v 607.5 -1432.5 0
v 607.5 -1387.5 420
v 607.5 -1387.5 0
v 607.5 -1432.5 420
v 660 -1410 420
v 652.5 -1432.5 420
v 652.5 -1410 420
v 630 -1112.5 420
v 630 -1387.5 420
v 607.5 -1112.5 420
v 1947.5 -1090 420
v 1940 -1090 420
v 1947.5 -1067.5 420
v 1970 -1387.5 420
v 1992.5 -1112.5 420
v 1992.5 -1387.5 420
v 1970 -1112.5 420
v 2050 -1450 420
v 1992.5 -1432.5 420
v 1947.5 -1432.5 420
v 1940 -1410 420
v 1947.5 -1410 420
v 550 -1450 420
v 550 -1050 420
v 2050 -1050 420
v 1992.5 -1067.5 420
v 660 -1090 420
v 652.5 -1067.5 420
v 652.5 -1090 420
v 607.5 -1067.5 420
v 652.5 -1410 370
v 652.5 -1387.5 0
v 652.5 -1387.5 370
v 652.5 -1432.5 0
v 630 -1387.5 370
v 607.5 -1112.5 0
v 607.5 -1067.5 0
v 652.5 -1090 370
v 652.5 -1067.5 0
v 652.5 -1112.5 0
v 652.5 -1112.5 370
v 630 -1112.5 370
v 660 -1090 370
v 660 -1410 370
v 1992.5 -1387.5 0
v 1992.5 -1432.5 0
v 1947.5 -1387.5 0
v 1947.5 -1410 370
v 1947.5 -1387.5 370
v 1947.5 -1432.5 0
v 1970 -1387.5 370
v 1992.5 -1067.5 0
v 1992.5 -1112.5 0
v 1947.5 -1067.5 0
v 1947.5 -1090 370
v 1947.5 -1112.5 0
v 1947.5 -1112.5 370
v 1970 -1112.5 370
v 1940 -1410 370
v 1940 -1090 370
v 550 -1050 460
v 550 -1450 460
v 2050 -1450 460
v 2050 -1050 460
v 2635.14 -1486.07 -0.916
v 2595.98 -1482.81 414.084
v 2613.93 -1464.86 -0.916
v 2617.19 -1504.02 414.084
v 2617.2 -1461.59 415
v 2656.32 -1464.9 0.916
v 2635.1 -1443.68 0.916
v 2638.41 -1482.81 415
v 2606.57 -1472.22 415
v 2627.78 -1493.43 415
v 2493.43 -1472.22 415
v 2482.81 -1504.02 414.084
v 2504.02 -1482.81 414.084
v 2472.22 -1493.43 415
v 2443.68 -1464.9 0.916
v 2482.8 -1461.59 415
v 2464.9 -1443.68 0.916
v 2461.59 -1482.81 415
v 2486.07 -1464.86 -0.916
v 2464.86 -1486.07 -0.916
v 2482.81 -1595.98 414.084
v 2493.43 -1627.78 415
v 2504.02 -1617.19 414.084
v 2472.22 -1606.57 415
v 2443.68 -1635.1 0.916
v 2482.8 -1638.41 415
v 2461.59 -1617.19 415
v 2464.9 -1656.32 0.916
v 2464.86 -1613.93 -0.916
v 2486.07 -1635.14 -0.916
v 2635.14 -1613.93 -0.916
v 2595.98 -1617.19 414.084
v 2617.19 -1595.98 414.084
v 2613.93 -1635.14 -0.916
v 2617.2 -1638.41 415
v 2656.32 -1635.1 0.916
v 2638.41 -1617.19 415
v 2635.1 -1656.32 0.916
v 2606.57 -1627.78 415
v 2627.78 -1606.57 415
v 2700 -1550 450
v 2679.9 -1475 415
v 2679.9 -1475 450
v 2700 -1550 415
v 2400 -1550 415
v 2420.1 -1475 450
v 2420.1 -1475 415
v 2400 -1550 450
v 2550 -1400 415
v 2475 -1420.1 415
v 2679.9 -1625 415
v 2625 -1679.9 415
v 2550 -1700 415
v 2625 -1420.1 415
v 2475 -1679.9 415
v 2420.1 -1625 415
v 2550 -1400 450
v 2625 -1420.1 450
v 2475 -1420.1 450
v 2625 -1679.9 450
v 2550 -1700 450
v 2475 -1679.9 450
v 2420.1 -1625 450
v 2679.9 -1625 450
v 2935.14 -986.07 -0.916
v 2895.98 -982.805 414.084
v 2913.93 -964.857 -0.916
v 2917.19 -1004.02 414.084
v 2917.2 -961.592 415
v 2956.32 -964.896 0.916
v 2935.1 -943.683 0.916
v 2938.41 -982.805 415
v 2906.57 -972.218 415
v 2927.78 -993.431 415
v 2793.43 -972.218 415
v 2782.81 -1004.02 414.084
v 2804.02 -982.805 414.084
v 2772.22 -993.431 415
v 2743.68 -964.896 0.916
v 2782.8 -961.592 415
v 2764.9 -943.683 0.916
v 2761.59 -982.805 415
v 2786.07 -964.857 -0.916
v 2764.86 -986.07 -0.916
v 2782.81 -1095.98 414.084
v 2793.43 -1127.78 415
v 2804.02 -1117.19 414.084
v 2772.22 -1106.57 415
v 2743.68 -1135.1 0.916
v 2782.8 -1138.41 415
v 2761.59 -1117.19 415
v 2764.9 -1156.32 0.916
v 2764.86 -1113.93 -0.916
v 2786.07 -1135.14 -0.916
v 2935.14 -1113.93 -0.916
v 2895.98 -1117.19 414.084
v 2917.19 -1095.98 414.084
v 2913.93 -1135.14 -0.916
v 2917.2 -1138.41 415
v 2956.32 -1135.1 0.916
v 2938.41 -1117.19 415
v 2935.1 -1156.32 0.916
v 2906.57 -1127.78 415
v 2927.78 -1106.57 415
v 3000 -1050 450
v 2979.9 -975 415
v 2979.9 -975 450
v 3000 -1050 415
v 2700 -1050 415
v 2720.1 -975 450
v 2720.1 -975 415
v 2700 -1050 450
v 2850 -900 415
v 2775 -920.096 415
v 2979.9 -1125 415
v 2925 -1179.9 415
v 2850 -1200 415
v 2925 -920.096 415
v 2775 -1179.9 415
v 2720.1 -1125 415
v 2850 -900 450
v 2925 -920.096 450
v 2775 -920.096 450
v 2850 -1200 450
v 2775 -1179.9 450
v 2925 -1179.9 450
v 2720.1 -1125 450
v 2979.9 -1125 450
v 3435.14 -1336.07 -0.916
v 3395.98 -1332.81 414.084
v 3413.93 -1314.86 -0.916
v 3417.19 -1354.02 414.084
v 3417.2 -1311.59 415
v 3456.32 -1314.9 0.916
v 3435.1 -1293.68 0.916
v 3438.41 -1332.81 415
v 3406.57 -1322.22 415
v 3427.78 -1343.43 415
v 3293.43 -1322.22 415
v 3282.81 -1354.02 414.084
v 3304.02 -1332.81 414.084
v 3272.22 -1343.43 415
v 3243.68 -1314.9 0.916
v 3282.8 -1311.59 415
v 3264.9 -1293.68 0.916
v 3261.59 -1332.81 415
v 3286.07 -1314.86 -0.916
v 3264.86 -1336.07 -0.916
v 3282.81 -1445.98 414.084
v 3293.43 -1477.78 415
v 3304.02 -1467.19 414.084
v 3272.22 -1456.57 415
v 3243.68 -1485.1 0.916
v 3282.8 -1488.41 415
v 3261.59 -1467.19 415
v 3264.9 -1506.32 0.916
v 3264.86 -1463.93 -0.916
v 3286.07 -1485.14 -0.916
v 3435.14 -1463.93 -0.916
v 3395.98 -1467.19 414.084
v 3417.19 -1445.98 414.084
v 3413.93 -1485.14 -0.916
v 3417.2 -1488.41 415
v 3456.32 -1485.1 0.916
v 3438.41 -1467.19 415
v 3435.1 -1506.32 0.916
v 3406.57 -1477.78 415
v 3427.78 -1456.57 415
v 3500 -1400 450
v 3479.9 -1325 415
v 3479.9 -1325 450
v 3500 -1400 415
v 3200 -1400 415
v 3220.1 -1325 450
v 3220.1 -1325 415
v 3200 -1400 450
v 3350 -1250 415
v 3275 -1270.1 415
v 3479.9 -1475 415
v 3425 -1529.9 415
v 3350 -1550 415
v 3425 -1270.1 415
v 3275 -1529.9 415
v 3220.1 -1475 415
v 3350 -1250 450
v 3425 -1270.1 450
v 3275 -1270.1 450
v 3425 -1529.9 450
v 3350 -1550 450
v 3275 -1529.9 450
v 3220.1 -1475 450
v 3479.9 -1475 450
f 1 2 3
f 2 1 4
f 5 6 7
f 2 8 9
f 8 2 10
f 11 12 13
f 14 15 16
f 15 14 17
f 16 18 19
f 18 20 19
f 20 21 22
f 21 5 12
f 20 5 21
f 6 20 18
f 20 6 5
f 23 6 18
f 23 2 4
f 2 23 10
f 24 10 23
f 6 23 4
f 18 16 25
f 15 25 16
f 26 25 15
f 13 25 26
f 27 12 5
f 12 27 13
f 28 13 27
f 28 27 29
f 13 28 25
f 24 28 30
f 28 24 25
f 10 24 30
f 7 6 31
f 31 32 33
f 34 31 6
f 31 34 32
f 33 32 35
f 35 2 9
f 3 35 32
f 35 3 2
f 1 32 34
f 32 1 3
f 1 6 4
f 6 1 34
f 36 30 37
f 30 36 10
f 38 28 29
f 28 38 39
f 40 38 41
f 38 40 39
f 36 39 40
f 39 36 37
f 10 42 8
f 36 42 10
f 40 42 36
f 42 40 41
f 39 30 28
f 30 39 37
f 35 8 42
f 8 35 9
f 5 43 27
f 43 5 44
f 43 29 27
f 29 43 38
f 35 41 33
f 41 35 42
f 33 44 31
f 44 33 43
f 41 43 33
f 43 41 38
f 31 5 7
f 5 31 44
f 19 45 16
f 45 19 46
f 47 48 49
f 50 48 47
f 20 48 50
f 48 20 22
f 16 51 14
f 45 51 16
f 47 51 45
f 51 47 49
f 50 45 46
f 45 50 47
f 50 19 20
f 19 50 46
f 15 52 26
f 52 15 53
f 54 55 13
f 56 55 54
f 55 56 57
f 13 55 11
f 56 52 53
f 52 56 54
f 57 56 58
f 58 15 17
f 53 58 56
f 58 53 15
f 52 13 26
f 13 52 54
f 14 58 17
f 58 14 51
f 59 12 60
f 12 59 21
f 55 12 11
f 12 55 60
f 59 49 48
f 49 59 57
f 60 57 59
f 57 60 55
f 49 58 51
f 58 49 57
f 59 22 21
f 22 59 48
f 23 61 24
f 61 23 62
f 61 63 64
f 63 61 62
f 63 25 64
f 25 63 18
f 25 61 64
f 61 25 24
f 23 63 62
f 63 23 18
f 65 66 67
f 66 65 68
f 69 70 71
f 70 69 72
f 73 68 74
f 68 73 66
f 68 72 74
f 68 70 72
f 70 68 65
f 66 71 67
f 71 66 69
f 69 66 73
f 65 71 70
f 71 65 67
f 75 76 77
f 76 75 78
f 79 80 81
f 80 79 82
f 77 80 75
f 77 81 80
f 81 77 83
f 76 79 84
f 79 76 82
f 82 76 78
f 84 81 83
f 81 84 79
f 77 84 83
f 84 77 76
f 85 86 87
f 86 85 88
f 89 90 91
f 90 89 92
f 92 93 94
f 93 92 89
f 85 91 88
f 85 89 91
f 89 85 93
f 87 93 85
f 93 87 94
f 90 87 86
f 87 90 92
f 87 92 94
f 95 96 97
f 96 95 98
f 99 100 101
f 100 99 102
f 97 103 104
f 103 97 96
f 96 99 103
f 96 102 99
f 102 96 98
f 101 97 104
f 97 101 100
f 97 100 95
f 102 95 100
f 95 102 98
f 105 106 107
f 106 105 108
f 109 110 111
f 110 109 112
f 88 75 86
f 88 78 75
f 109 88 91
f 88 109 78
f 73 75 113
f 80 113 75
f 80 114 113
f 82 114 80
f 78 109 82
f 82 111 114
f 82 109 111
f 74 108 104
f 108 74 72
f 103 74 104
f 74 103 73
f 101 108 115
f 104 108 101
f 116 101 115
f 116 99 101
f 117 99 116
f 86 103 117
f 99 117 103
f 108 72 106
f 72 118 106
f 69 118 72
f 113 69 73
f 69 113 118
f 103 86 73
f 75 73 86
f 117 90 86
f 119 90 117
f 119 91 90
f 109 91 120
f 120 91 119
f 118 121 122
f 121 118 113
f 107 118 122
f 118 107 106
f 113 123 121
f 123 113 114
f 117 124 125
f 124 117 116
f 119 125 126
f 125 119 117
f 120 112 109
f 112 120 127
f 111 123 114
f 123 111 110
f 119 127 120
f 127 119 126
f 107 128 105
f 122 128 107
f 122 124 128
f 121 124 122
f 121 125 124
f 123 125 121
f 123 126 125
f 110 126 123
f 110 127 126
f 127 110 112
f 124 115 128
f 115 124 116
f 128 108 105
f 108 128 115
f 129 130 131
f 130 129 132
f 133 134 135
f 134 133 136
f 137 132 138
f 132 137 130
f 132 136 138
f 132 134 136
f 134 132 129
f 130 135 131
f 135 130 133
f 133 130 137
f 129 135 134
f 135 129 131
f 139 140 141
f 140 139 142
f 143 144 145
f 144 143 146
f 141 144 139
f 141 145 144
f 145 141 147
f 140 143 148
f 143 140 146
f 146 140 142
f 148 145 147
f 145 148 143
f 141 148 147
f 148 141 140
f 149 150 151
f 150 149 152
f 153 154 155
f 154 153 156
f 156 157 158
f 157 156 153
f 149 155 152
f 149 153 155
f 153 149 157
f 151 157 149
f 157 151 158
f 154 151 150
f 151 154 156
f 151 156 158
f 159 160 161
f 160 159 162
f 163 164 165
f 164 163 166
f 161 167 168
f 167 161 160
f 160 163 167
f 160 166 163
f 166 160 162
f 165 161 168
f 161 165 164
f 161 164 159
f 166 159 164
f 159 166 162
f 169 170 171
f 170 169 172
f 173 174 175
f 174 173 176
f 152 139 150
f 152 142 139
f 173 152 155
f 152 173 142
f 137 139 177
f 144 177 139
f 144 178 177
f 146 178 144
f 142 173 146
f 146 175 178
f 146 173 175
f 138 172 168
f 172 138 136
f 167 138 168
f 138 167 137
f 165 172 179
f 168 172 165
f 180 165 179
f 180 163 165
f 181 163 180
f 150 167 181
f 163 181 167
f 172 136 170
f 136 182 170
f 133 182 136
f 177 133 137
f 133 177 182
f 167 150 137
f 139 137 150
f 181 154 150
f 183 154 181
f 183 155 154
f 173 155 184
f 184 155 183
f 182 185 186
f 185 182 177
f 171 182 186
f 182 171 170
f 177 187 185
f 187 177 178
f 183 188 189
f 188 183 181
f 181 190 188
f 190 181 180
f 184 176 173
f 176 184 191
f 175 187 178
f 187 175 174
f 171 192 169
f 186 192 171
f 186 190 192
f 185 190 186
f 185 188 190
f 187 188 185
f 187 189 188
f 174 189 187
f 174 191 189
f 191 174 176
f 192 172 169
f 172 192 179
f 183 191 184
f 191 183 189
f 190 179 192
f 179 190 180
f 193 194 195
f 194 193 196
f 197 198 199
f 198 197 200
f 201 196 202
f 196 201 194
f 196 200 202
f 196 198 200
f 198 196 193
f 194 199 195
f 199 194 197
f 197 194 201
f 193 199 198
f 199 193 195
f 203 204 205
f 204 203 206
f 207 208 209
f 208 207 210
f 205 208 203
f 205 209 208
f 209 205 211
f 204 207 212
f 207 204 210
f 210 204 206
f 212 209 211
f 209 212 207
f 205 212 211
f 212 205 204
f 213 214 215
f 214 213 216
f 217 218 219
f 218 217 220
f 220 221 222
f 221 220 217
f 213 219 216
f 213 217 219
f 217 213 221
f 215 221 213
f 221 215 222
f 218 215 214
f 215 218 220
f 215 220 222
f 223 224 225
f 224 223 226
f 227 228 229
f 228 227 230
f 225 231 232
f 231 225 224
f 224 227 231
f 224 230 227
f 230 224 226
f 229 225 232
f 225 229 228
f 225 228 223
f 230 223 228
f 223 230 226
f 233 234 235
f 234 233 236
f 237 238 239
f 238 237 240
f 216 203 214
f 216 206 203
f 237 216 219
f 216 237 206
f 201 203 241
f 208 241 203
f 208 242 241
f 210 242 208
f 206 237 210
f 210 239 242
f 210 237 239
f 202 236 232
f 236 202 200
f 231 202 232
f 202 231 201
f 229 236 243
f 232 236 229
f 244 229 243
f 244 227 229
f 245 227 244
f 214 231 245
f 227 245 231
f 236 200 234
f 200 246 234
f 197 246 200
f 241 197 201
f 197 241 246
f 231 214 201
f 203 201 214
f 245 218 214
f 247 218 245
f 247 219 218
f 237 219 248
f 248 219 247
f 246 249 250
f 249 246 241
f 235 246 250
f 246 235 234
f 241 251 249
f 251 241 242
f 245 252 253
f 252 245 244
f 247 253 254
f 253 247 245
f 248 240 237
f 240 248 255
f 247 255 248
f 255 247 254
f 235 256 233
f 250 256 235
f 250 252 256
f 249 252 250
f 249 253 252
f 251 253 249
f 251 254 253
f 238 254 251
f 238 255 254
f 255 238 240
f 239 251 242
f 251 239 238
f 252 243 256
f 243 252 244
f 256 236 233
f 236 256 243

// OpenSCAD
// file: tea_shop_furniture_parameters.scad
// =============================================================================
// TEA SHOP DIORAMA — GROUP 6: EXTERIOR FURNITURE PARAMETERS
// =============================================================================
// All units: mm (1000 mm = 1.0 m), 1:1 real-world scale (1000 units = 1 GTA unit).
// Shared global coordinate system (identical to Groups 1–5):
//   +X -> left -> right  (0 = left outer wall, BUILD_W = right outer wall)
//   +Y -> front -> back  (0 = front wall eave face, BUILD_D = back wall, porch in -Y)
//   +Z -> up             (0 = top surface of base slab / ground datum)
// =============================================================================

// =============================================================================
// 1. SHARED GLOBAL VARIABLES (Reused from Groups 1–5 — identical values)
// =============================================================================
WALL_T             = 250;   // wall panel thickness                      (0.25 m)
BUILD_W            = 6000;  // building width along X                    (6.00 m)
BUILD_D            = 4000;  // building depth along Y                    (4.00 m)
FRONT_H            = 2400;  // wall height at FRONT eave (short side)    (2.40 m)
WIN_X              = 600;   // left pier width / window start X datum    (0.60 m)
WIN_W              = 3400;  // service window width                      (3.40 m)
SILL_H             = 900;   // knee-wall sill height beneath window      (0.90 m)
BASE_H             = 200;   // base plinth vertical thickness            (0.20 m)
BASE_MARGIN_FRONT  = 3000;  // front porch slab depth (extends to Y=-3m) (3.00 m)

// Aliases for compatibility with earlier group files:
wall_thickness     = WALL_T;
building_width     = BUILD_W;
building_depth     = BUILD_D;
front_eave_height  = FRONT_H;
sill_height        = SILL_H;
base_front_margin  = BASE_MARGIN_FRONT;


// =============================================================================
// 2. GROUP 6 PARAMETERS — BENCH (Long Wooden Porch Bench)
// =============================================================================
// REFERENCE OBSERVATIONS (Images: page 1/2 daylight/night, page 5 clay,
// page 7 front elevation, page 8 wireframe, page 14 eye-level):
//
// 1. Bench Style & Proportions:
//    - Simple utilitarian Indian roadside tea stall wooden bench.
//    - Single flat solid rectangular wooden plank for the seat.
//    - Two leg assemblies (one at each end). Wireframe (page 8) and clay (page 5)
//      confirm each leg pair is NOT a solid A-frame slab, but TWO straight
//      square timber posts tied together under the seat by a horizontal cross
//      apron rail. The posts are vertical (0 deg angle) with inset mounting.
//    - Bench height is roughly half the window sill height:
//      SILL_H = 900 mm -> BENCH_HEIGHT = 460 mm (~18 inches standard seating).
//    - Bench length spans ~1500 mm, comfortably seating 3-4 patrons.
//    - Bench width is ~400 mm (standard 16-inch bench seat).
//
// [ESTIMATED DIMENSIONS NOTE]:
// - Bench top thickness (40 mm) estimated from front elevation pixel ratio
//   (~1/11 of bench height).
// - Leg post cross-section (45x45 mm) estimated from wireframe edge density.
// - Inset of legs from ends (80 mm) and edges (17.5 mm) estimated from clay shot.
// - Bench X position (X = 550 mm) sits under the left pier and left edge of
//   the service window, leaving clear passage to the counter and door.
// - Bench Y position (Y = -1250 mm) sits centrally under the pergola canopy
//   (between wall Y=0 and front post line Y=-2250 mm).
BENCH_LENGTH          = 1500; // bench seat plank length along X (mm)
BENCH_WIDTH           = 400;  // bench seat plank width along Y (mm)
BENCH_HEIGHT          = 460;  // total seat height from ground (Z=0) to top face (mm)
BENCH_TOP_THICKNESS   = 40;   // thickness of seat top plank (mm)

// Bench Leg Pair (2 posts + top cross apron rail per end):
BENCH_LEG_SIZE        = 45;   // square timber leg cross-section (45x45 mm)
BENCH_LEG_ANGLE       = 0;    // leg angle from vertical (0 deg = straight vertical posts)
BENCH_LEG_PAIR_WIDTH  = 320;  // center-to-center span across Y of the 2 end legs (mm)
                              // Outer edge-to-edge span = 320 + 45 = 365 mm
                              // Leaves (400 - 365)/2 = 17.5 mm front/back overhang
BENCH_LEG_INSET_X     = 80;   // inset of leg center from left/right plank ends (mm)
BENCH_APRON_WIDTH     = 30;   // thickness of horizontal cross apron rail along X (mm)
BENCH_APRON_HEIGHT    = 50;   // vertical height of horizontal cross apron rail (mm)

// Bench Porch Placement (World Coordinates):
BENCH_POS_X           = 550;  // left edge X coordinate of bench top (mm)
BENCH_POS_Y           = -1250;// center Y coordinate of bench (mm)
                              // Back edge is at Y = -1050 mm, Front edge at Y = -1450 mm
BENCH_ROT_Z           = 0;    // rotation angle about Z (0 = parallel to front wall)


// =============================================================================
// 3. GROUP 6 PARAMETERS — STOOLS (Round Wooden Porch Stools)
// =============================================================================
// REFERENCE OBSERVATIONS (Images: page 1/2, page 5 clay, page 7 elevation,
// page 8 wireframe, page 13 interior close-up, page 14 eye-level):
//
// 1. Stool Style & Proportions:
//    - Round wooden top seat disc with bevel/slight chamfer, resting on
//      4 splayed square timber legs.
//    - Polycount optimization: 12-sided cylinder ( = 12) provides a clean,
//      authentic round silhouette while keeping polycount low for GTA V MLO props.
//    - Stool height is 450 mm (level with the bench, exactly half the 900mm sill).
//    - Seat diameter is 300 mm (~12 inches), standard for street tea stalls.
//    - Legs splay outward slightly from under the seat disc (angle ~3.5 deg),
//      ensuring stability while remaining inside the seat diameter footprint at the base.
//
// 2. Stool Clustering Layout:
//    - The reference images show 3 stools clustered together directly in front of
//      the counter window (X = 2500..3400 mm), where patrons sit to drink tea.
//    - They are NOT placed on a rigid grid:
//        * Stool 1: [2550, -1550] — front-left of the cluster, closer to walkway
//        * Stool 2: [2850, -1050] — back-mid of the cluster, closer to counter window
//        * Stool 3: [3350, -1400] — front-right of the cluster, near entrance path
//
// [ESTIMATED DIMENSIONS NOTE]:
// - Seat thickness (35 mm) estimated from front elevation and wireframe.
// - Leg cross-section (30x30 mm) estimated from wireframe edge density.
// - Splay angle (3.5 deg) estimated from wireframe slope relative to vertical.
STOOL_HEIGHT          = 450;  // total height to top of stool seat (mm)
STOOL_SEAT_DIA        = 300;  // round seat disc diameter (mm)
STOOL_SEAT_RADIUS     = STOOL_SEAT_DIA / 2; // 150 mm
STOOL_SEAT_THICKNESS  = 35;   // seat disc thickness (mm)

// Stool Leg Dimensions:
STOOL_LEG_SIZE        = 30;   // square timber leg cross-section (30x30 mm)
STOOL_LEG_SPLAY_ANGLE = 3.5;  // outward splay angle from vertical (degrees)
STOOL_LEG_RADIUS_TOP  = 95;   // radial distance of leg center from stool center at top (mm)
                              // Leaves 150 - (95 + 15) = 40 mm seat lip overhang

// Derived stool leg length along its angled axis:
STOOL_LEG_H           = STOOL_HEIGHT - STOOL_SEAT_THICKNESS; // vertical leg span (415 mm)
STOOL_LEG_LEN         = STOOL_LEG_H / cos(STOOL_LEG_SPLAY_ANGLE); // angled length (~415.78 mm)

// Low-poly curvature resolution for MLO optimization:
STOOL_FN              = 12;   // 12-sided polygon for round seat disc (MLO target)

// Stool Positions Array (3 clustered [X, Y] coordinates on the porch):
STOOL_POSITIONS = [
    [2550, -1550],  // Stool 1: Front-Left
    [2850, -1050],  // Stool 2: Back-Mid (near counter)
    [3350, -1400]   // Stool 3: Front-Right (near entrance)
];
// main file
// =============================================================================
// TEA SHOP DIORAMA — GROUP 6: EXTERIOR FURNITURE ASSEMBLY
// =============================================================================
// Preview assembly of all exterior furniture (bench + 3 stools) placed on porch.
// =============================================================================

include <tea_shop_furniture_modules.scad>;

// Render the complete porch furniture assembly in world coordinates:
assemble();
